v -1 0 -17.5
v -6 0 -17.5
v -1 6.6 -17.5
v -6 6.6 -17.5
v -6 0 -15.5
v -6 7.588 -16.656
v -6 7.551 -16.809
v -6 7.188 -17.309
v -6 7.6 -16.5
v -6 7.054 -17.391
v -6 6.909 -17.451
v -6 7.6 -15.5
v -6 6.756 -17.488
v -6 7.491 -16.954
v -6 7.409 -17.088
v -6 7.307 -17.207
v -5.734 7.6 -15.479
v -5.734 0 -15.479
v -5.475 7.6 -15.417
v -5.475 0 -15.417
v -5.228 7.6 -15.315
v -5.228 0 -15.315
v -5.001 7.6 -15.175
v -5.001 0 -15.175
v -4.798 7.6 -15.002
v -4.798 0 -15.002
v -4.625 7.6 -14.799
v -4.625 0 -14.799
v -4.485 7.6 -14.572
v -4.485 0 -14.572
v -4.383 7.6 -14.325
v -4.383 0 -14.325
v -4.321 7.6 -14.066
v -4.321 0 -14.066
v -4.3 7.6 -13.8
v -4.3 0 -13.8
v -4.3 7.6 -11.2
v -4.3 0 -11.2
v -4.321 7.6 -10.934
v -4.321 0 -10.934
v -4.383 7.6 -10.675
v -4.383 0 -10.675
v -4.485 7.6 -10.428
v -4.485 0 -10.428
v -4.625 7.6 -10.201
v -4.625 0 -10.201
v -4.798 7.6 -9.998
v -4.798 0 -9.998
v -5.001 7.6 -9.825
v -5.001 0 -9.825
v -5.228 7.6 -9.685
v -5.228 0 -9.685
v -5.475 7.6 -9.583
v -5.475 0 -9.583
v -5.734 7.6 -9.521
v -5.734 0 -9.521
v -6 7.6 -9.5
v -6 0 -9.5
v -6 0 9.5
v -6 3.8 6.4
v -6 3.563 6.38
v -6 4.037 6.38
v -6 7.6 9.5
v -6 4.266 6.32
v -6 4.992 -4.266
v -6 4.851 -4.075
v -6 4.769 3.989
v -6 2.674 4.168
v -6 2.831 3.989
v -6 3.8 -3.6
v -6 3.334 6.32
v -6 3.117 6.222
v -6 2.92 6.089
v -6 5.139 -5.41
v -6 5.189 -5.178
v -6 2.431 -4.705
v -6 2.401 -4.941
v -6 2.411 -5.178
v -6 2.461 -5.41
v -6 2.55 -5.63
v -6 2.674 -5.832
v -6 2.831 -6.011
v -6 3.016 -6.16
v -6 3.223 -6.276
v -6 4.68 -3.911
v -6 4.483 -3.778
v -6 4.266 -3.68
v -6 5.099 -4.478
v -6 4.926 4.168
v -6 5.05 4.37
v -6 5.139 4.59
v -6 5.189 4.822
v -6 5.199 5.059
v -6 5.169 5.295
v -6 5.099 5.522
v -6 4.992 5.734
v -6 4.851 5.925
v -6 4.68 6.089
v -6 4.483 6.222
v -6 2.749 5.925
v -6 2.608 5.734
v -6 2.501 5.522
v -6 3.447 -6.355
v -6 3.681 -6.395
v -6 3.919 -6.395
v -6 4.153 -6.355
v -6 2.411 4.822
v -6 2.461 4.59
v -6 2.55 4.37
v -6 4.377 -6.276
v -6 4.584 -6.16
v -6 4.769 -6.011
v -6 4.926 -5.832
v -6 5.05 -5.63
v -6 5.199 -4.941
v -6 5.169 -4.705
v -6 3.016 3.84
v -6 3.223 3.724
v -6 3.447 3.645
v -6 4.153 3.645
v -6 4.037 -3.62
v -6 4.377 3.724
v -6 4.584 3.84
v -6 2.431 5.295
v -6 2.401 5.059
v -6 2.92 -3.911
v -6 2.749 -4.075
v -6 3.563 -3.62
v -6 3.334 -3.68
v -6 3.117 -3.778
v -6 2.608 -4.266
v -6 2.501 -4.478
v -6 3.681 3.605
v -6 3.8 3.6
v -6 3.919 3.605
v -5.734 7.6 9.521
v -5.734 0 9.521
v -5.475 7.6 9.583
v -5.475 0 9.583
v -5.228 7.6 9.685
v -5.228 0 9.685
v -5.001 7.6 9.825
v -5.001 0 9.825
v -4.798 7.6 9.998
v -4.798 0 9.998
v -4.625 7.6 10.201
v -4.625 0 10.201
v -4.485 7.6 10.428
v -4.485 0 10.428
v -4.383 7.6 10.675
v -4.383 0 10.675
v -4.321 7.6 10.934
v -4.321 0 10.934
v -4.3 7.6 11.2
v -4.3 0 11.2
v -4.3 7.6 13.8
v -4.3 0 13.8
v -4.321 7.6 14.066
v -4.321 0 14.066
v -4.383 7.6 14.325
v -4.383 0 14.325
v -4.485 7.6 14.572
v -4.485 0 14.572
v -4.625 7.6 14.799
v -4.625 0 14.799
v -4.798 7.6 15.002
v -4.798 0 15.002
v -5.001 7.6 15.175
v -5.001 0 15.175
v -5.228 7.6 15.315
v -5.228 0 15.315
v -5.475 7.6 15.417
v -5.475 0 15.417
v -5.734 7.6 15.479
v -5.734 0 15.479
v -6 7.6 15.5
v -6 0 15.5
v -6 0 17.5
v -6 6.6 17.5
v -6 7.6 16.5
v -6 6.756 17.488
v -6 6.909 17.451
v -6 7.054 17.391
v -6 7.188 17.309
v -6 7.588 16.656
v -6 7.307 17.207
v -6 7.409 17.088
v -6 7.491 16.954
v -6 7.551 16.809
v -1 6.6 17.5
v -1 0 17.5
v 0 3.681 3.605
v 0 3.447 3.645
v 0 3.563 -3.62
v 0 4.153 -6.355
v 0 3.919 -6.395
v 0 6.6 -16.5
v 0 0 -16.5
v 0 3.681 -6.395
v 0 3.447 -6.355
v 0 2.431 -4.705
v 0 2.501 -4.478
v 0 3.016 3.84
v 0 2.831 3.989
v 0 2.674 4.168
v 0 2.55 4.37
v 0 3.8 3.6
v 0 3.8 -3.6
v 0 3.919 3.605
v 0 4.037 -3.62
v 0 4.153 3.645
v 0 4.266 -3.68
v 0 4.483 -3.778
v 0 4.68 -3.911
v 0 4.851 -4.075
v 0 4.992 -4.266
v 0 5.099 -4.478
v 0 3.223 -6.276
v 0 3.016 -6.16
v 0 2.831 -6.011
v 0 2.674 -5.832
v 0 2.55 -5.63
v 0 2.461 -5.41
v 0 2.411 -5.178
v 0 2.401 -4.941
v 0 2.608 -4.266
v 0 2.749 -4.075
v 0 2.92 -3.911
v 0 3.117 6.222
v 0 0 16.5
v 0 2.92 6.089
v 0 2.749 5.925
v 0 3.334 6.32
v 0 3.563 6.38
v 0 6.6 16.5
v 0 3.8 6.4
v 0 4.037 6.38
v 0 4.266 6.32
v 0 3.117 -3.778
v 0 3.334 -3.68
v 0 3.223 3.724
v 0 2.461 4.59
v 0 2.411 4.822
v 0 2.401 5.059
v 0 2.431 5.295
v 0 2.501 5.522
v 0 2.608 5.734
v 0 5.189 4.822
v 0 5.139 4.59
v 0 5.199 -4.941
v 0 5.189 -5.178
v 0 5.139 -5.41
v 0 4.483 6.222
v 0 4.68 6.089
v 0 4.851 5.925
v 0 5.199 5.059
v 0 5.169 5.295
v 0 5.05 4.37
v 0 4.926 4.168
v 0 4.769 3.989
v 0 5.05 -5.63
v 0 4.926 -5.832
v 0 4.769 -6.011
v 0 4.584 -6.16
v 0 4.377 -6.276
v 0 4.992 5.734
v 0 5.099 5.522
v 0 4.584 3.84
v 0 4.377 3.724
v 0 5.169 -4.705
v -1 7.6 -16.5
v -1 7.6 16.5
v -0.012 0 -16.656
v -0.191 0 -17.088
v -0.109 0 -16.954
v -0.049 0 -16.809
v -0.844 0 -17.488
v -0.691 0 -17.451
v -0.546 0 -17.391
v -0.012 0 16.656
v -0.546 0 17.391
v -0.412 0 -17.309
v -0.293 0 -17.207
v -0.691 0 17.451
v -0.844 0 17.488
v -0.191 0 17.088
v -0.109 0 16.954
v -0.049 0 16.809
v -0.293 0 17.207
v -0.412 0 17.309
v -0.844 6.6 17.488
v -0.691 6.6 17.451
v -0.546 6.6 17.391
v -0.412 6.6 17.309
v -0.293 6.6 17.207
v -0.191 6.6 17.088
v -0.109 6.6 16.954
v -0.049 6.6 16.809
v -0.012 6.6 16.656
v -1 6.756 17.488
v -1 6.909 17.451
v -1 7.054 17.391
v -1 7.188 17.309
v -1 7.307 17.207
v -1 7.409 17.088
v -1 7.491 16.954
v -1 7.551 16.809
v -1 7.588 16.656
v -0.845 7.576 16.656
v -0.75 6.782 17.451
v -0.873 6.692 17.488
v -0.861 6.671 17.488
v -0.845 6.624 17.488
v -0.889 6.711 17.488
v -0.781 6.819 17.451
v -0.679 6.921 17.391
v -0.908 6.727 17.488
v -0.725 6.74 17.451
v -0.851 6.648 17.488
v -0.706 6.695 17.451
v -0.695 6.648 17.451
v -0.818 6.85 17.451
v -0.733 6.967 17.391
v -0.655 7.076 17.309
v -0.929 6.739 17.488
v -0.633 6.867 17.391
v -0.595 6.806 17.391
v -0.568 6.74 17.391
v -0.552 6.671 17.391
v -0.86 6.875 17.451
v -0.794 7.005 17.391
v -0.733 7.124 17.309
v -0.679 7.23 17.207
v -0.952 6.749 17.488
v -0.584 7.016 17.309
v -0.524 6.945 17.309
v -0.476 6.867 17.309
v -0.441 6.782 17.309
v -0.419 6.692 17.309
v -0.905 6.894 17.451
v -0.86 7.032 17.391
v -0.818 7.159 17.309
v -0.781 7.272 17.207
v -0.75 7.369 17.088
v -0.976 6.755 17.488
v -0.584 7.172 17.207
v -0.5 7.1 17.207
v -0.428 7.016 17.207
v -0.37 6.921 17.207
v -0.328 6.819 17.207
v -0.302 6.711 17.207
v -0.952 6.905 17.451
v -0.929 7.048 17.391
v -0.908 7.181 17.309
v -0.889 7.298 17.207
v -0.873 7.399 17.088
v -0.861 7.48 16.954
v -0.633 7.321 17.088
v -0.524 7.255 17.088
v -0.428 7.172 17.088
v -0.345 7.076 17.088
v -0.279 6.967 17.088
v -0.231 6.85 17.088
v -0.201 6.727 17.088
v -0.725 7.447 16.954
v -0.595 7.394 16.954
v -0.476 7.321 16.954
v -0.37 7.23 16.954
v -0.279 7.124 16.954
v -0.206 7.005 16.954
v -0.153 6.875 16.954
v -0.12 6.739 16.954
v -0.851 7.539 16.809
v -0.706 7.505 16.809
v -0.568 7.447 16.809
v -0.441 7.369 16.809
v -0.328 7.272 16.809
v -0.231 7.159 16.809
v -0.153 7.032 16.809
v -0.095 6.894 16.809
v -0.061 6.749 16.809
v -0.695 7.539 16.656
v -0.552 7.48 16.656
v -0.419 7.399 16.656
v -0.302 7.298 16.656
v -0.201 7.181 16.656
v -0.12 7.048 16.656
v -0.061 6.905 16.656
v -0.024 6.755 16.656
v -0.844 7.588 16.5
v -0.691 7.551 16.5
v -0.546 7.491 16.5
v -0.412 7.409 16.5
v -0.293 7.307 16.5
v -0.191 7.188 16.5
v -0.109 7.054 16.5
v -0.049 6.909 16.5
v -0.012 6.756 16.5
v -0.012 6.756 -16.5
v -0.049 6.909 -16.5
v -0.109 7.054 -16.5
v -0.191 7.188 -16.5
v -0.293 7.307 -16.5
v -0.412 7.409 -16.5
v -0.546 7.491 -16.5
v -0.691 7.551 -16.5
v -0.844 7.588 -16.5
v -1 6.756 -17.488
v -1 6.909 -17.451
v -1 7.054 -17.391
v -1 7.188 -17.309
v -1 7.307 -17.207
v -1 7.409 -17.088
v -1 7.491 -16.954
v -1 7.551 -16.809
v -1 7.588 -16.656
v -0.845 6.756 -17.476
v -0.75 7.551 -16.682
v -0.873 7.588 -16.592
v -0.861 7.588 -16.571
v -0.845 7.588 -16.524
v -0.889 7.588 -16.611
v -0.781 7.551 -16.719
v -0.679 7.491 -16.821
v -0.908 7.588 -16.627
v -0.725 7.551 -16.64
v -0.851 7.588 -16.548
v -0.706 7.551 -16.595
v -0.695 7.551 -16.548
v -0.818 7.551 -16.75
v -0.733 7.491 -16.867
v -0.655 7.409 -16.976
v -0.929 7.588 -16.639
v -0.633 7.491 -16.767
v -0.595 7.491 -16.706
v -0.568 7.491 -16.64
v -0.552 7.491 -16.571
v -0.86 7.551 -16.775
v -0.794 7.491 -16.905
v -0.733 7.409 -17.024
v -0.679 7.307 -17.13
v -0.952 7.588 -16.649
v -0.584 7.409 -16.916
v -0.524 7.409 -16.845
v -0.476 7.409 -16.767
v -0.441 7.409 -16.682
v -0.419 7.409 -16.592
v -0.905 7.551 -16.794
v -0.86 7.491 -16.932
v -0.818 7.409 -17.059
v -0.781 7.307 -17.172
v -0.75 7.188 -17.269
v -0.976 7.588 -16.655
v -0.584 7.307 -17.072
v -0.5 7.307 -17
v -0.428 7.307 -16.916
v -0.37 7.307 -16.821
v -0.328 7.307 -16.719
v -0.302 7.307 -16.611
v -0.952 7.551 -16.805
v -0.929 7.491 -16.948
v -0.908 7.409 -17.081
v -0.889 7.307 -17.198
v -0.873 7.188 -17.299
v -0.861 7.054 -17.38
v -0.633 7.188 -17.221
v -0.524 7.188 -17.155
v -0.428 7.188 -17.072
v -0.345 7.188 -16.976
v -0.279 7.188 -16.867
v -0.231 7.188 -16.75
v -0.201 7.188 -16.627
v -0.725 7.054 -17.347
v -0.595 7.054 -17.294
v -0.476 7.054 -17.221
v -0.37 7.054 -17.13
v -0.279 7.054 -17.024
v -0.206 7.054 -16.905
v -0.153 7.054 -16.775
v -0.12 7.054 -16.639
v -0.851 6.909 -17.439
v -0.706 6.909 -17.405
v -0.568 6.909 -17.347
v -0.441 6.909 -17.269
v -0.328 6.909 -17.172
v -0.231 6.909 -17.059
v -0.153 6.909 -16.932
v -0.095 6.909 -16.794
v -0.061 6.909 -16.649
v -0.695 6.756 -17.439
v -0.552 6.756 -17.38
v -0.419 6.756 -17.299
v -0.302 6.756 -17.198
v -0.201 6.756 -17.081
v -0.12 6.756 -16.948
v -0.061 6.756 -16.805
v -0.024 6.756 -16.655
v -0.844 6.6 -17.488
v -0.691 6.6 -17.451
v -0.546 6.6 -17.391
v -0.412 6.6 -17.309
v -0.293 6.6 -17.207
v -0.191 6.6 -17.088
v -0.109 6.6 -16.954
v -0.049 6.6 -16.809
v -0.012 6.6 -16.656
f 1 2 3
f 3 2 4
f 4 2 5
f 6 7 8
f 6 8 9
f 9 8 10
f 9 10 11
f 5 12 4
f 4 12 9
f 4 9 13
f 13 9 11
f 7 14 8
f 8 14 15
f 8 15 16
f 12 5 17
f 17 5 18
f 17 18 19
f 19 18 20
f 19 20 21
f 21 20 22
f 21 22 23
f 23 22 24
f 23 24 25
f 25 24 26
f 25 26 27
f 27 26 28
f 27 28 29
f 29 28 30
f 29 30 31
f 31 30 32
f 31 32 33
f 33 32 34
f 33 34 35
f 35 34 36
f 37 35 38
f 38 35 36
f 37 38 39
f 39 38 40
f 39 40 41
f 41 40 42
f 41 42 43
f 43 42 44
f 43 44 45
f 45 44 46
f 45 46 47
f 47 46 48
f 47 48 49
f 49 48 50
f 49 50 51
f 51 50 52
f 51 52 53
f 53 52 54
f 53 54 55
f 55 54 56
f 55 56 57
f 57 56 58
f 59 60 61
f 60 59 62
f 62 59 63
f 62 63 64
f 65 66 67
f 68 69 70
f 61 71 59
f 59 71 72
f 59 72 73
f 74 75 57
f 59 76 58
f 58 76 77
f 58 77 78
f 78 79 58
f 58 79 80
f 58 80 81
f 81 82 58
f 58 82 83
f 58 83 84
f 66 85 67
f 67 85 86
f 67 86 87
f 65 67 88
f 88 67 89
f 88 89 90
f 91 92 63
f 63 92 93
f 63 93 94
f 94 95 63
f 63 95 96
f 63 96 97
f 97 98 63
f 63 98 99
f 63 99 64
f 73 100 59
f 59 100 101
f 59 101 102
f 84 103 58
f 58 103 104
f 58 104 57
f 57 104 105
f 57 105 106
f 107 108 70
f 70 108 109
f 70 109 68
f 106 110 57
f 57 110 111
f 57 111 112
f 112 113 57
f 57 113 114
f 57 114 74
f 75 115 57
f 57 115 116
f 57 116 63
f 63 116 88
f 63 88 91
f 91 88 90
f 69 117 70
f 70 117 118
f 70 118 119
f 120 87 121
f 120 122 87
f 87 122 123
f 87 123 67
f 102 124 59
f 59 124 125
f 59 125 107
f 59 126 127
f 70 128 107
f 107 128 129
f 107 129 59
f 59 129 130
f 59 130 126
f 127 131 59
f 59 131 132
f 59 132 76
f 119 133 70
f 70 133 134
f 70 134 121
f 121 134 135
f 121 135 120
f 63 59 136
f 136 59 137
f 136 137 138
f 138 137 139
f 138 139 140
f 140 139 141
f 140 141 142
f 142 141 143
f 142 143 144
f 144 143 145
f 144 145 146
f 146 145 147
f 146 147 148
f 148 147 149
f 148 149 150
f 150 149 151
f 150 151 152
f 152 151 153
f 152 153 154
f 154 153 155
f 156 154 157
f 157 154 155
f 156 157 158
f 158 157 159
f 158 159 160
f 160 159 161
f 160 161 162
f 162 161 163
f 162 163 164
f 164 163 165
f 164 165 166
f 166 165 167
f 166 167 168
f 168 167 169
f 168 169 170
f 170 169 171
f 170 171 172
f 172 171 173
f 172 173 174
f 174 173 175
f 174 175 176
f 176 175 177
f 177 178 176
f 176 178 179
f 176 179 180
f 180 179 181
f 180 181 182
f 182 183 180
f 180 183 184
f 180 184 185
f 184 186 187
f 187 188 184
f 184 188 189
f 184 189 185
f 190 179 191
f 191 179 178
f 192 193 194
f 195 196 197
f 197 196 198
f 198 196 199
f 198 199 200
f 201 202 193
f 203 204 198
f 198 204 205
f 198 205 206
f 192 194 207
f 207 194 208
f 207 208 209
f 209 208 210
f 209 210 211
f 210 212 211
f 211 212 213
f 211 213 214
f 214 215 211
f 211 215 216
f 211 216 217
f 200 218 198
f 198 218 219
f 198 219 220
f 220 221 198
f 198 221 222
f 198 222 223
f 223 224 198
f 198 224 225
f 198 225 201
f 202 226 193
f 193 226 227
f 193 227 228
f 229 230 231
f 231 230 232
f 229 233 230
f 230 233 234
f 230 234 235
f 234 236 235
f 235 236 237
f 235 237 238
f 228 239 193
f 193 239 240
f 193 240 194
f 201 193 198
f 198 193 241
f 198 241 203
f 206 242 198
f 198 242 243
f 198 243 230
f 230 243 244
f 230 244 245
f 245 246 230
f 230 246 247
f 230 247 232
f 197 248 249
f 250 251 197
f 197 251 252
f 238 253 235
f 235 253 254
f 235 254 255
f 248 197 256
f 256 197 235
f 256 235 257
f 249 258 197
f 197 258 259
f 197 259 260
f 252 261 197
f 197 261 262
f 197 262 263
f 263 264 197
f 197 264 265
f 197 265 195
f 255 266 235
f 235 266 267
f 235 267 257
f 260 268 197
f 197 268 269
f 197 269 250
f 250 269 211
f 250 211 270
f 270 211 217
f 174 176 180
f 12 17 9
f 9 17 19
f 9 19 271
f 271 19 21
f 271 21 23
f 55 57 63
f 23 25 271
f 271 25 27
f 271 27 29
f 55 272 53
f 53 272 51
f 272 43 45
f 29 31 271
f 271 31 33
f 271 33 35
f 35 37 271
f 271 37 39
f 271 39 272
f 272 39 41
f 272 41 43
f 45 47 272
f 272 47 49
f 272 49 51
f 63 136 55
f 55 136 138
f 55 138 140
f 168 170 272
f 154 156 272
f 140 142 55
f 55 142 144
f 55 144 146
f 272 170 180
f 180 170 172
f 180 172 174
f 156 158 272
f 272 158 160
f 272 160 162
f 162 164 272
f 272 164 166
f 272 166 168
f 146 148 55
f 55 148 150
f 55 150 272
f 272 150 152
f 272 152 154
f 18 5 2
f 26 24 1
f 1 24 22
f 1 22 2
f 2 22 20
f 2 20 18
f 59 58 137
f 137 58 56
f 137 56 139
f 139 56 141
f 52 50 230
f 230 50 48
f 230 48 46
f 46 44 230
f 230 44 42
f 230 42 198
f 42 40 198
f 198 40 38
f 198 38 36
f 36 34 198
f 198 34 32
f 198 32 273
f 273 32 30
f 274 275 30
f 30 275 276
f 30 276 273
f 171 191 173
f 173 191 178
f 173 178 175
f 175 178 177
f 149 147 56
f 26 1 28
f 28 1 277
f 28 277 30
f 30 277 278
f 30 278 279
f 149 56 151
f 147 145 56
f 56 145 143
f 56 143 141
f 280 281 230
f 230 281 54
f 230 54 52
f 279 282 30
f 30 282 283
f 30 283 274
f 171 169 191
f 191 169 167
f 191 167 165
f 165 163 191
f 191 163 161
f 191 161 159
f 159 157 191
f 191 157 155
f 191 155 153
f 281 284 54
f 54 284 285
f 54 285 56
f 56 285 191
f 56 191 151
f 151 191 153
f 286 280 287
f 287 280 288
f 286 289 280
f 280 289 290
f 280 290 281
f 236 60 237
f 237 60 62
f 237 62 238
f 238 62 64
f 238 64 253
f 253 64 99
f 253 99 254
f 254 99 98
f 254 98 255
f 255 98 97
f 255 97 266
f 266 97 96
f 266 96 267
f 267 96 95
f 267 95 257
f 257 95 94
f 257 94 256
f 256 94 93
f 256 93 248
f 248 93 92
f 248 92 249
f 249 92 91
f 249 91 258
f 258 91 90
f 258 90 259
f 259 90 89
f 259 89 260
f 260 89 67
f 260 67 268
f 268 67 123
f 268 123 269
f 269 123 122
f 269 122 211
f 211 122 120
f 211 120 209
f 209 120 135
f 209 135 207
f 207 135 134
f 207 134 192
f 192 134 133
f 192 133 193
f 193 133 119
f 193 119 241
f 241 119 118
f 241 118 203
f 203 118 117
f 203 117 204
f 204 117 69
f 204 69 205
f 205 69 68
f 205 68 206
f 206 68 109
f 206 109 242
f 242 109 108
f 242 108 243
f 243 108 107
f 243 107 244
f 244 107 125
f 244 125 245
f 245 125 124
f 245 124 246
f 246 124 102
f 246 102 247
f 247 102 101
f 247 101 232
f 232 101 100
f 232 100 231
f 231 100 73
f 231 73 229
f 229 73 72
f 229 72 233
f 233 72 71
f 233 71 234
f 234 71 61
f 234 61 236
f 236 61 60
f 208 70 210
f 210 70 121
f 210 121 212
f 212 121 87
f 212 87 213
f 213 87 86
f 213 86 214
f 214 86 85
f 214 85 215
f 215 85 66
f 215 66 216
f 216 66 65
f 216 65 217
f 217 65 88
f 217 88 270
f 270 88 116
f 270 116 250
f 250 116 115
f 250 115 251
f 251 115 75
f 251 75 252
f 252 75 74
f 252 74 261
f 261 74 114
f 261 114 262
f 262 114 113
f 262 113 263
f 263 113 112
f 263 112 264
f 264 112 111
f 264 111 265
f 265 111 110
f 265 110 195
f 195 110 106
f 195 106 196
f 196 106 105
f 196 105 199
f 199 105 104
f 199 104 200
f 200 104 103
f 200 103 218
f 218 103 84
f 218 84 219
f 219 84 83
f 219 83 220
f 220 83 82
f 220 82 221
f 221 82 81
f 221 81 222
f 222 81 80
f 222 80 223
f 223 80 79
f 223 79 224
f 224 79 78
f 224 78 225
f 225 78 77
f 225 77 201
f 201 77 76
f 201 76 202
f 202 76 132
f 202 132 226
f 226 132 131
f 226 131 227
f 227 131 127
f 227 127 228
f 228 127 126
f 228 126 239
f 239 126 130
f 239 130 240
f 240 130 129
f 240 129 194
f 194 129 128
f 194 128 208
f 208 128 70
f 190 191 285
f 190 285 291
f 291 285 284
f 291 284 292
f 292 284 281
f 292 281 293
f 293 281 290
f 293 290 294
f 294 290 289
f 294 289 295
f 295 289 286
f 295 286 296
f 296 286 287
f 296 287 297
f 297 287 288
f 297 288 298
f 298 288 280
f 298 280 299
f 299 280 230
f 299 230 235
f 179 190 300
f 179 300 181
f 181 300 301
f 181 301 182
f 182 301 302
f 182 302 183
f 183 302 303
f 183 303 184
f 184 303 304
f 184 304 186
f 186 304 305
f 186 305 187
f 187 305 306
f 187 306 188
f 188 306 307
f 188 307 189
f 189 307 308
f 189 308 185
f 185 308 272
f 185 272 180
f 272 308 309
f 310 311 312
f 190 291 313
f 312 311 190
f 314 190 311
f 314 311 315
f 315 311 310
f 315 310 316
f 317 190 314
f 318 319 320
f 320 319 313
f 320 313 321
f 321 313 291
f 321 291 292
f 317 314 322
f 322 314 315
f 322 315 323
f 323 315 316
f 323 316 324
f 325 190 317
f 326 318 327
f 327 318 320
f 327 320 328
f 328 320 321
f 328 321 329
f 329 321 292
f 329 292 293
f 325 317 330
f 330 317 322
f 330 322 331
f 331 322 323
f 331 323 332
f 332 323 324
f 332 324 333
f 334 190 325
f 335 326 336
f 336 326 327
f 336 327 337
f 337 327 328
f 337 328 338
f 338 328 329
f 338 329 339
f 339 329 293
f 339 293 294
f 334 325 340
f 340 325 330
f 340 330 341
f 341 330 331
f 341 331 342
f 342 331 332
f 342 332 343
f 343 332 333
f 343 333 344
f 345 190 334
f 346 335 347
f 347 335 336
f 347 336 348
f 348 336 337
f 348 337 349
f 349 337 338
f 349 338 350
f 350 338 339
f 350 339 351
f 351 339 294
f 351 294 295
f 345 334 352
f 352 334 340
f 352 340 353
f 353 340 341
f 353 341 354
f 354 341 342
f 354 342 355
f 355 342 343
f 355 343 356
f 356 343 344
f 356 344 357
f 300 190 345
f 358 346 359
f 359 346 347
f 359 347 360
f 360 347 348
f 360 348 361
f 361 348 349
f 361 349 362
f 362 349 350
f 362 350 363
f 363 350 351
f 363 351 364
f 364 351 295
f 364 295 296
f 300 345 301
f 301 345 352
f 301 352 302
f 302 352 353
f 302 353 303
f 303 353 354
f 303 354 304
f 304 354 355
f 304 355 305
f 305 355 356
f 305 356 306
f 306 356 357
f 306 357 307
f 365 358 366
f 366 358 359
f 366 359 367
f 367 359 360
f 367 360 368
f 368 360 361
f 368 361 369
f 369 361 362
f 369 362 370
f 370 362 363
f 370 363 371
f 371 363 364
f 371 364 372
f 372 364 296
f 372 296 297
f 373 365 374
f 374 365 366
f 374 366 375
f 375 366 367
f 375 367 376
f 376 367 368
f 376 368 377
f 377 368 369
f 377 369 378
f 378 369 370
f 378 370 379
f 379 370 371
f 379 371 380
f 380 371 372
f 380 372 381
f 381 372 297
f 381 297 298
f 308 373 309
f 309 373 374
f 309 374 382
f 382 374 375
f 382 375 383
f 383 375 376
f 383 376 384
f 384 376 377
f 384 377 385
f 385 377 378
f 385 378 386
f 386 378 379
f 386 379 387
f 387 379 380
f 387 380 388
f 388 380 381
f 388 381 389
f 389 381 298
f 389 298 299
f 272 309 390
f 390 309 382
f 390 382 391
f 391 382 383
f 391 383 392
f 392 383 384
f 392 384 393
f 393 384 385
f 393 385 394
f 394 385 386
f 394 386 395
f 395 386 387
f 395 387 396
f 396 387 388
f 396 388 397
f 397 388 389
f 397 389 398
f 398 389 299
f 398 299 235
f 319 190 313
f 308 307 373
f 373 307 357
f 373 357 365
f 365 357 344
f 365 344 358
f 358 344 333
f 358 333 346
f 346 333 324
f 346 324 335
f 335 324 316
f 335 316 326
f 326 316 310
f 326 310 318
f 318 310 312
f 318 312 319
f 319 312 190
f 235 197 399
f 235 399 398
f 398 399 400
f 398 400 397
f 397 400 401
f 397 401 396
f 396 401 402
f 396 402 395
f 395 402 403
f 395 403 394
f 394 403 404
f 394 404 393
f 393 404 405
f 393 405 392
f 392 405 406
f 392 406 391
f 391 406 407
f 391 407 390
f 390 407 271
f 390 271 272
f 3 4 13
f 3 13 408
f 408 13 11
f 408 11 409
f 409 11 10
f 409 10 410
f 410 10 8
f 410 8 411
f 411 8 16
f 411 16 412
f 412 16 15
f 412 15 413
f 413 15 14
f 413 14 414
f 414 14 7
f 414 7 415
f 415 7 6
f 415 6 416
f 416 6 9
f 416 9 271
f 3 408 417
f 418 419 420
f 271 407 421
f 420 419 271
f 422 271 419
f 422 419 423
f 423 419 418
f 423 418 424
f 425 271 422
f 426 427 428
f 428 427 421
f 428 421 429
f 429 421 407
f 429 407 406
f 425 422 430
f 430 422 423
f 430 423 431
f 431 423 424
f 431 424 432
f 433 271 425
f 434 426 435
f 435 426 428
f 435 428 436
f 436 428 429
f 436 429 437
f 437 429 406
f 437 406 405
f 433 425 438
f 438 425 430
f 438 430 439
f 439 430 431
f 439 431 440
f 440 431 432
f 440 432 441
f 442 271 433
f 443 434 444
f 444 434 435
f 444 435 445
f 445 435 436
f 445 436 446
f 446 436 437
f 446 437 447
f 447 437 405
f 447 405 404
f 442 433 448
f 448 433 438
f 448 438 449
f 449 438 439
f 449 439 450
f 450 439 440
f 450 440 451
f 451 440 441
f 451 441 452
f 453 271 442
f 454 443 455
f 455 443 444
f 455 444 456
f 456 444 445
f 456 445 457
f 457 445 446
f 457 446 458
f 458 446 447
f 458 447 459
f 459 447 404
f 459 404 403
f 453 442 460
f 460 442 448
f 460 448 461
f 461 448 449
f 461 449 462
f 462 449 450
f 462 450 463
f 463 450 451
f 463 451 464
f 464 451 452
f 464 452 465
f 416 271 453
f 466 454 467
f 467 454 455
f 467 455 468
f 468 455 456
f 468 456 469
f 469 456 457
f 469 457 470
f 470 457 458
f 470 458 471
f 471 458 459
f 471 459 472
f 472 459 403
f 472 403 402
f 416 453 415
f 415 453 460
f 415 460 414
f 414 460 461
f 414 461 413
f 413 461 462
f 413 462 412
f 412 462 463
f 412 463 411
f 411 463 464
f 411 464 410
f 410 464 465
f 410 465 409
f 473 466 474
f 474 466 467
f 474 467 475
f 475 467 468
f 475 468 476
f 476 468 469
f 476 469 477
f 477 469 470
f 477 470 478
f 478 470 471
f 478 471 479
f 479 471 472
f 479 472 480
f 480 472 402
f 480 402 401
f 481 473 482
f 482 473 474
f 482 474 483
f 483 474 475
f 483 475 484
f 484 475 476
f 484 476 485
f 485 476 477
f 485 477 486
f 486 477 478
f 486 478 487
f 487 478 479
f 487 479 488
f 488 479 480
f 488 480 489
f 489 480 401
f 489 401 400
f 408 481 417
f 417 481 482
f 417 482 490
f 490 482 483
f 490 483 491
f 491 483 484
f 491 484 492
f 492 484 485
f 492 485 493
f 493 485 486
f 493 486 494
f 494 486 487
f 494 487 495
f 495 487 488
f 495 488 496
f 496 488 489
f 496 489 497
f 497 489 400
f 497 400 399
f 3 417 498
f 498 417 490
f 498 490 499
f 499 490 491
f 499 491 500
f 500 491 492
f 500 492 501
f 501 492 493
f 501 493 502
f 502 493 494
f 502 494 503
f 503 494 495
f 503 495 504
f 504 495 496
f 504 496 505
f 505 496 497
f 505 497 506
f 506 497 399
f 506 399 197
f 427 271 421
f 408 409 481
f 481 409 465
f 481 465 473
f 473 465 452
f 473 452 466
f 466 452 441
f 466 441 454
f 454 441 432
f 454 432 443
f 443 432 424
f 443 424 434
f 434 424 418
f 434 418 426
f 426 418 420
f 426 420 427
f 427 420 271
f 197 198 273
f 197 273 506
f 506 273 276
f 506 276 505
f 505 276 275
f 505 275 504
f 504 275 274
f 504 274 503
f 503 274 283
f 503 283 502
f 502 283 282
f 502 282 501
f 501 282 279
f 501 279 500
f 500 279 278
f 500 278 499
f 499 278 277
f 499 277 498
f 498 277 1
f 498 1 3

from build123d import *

# Parameters (mm, degrees)
BASE_DEPTH           = 7.6
SKETCH2_R            = 1.4
SCREW_HOLES_DEPTH    = 21.000249998
F_1MM_EDGE_FILLETS_R = 1


with BuildPart() as part:
    # Sketch1 → Base (new body)
    with BuildSketch(Plane(origin=(0, 0, 0), x_dir=(1, 0, 0), z_dir=(0, 1, 0))):
        with BuildLine():
            Line((-6, 17.5), (-6, 15.5))
            ThreePointArc((-6, 15.5), (-4.797918472, 15.002081528), (-4.3, 13.8))
            Line((-4.3, 13.8), (-4.3, 11.2))
            ThreePointArc((-4.3, 11.2), (-4.797918472, 9.997918472), (-6, 9.5))
            Line((-6, 9.5), (-6, -9.5))
            ThreePointArc((-6, -9.5), (-4.797918472, -9.997918472), (-4.3, -11.2))
            Line((-4.3, -11.2), (-4.3, -13.8))
            ThreePointArc((-4.3, -13.8), (-4.797918472, -15.002081528), (-6, -15.5))
            Line((-6, -15.5), (-6, -17.5))
            Line((-6, -17.5), (0, -17.5))
            Line((0, -17.5), (0, 17.5))
            Line((0, 17.5), (-6, 17.5))
        make_face()
    extrude(amount=BASE_DEPTH)

    # Sketch2 → Screw Holes (cut, through all)
    with BuildSketch(Plane.ZY.offset(6)):
        with Locations((-5, 3.8)):
            Circle(SKETCH2_R)
        with Locations(Location((5, 3.8, 0), (0, 0, 180))):
            Circle(SKETCH2_R)
    extrude(amount=-SCREW_HOLES_DEPTH, mode=Mode.SUBTRACT)

    # 1mm Edge Fillets
    f_1mm_edge_fillets_edges = [part.edges().sort_by_distance(p)[0] for p in [
        (0, 3.8, -17.5),
        (0, 3.8, 17.5),
        (-3, 7.6, 17.5),
        (0, 7.6, 0),
        (-3, 7.6, -17.5),
    ]]
    fillet(f_1mm_edge_fillets_edges, radius=F_1MM_EDGE_FILLETS_R)


solid = part.part
